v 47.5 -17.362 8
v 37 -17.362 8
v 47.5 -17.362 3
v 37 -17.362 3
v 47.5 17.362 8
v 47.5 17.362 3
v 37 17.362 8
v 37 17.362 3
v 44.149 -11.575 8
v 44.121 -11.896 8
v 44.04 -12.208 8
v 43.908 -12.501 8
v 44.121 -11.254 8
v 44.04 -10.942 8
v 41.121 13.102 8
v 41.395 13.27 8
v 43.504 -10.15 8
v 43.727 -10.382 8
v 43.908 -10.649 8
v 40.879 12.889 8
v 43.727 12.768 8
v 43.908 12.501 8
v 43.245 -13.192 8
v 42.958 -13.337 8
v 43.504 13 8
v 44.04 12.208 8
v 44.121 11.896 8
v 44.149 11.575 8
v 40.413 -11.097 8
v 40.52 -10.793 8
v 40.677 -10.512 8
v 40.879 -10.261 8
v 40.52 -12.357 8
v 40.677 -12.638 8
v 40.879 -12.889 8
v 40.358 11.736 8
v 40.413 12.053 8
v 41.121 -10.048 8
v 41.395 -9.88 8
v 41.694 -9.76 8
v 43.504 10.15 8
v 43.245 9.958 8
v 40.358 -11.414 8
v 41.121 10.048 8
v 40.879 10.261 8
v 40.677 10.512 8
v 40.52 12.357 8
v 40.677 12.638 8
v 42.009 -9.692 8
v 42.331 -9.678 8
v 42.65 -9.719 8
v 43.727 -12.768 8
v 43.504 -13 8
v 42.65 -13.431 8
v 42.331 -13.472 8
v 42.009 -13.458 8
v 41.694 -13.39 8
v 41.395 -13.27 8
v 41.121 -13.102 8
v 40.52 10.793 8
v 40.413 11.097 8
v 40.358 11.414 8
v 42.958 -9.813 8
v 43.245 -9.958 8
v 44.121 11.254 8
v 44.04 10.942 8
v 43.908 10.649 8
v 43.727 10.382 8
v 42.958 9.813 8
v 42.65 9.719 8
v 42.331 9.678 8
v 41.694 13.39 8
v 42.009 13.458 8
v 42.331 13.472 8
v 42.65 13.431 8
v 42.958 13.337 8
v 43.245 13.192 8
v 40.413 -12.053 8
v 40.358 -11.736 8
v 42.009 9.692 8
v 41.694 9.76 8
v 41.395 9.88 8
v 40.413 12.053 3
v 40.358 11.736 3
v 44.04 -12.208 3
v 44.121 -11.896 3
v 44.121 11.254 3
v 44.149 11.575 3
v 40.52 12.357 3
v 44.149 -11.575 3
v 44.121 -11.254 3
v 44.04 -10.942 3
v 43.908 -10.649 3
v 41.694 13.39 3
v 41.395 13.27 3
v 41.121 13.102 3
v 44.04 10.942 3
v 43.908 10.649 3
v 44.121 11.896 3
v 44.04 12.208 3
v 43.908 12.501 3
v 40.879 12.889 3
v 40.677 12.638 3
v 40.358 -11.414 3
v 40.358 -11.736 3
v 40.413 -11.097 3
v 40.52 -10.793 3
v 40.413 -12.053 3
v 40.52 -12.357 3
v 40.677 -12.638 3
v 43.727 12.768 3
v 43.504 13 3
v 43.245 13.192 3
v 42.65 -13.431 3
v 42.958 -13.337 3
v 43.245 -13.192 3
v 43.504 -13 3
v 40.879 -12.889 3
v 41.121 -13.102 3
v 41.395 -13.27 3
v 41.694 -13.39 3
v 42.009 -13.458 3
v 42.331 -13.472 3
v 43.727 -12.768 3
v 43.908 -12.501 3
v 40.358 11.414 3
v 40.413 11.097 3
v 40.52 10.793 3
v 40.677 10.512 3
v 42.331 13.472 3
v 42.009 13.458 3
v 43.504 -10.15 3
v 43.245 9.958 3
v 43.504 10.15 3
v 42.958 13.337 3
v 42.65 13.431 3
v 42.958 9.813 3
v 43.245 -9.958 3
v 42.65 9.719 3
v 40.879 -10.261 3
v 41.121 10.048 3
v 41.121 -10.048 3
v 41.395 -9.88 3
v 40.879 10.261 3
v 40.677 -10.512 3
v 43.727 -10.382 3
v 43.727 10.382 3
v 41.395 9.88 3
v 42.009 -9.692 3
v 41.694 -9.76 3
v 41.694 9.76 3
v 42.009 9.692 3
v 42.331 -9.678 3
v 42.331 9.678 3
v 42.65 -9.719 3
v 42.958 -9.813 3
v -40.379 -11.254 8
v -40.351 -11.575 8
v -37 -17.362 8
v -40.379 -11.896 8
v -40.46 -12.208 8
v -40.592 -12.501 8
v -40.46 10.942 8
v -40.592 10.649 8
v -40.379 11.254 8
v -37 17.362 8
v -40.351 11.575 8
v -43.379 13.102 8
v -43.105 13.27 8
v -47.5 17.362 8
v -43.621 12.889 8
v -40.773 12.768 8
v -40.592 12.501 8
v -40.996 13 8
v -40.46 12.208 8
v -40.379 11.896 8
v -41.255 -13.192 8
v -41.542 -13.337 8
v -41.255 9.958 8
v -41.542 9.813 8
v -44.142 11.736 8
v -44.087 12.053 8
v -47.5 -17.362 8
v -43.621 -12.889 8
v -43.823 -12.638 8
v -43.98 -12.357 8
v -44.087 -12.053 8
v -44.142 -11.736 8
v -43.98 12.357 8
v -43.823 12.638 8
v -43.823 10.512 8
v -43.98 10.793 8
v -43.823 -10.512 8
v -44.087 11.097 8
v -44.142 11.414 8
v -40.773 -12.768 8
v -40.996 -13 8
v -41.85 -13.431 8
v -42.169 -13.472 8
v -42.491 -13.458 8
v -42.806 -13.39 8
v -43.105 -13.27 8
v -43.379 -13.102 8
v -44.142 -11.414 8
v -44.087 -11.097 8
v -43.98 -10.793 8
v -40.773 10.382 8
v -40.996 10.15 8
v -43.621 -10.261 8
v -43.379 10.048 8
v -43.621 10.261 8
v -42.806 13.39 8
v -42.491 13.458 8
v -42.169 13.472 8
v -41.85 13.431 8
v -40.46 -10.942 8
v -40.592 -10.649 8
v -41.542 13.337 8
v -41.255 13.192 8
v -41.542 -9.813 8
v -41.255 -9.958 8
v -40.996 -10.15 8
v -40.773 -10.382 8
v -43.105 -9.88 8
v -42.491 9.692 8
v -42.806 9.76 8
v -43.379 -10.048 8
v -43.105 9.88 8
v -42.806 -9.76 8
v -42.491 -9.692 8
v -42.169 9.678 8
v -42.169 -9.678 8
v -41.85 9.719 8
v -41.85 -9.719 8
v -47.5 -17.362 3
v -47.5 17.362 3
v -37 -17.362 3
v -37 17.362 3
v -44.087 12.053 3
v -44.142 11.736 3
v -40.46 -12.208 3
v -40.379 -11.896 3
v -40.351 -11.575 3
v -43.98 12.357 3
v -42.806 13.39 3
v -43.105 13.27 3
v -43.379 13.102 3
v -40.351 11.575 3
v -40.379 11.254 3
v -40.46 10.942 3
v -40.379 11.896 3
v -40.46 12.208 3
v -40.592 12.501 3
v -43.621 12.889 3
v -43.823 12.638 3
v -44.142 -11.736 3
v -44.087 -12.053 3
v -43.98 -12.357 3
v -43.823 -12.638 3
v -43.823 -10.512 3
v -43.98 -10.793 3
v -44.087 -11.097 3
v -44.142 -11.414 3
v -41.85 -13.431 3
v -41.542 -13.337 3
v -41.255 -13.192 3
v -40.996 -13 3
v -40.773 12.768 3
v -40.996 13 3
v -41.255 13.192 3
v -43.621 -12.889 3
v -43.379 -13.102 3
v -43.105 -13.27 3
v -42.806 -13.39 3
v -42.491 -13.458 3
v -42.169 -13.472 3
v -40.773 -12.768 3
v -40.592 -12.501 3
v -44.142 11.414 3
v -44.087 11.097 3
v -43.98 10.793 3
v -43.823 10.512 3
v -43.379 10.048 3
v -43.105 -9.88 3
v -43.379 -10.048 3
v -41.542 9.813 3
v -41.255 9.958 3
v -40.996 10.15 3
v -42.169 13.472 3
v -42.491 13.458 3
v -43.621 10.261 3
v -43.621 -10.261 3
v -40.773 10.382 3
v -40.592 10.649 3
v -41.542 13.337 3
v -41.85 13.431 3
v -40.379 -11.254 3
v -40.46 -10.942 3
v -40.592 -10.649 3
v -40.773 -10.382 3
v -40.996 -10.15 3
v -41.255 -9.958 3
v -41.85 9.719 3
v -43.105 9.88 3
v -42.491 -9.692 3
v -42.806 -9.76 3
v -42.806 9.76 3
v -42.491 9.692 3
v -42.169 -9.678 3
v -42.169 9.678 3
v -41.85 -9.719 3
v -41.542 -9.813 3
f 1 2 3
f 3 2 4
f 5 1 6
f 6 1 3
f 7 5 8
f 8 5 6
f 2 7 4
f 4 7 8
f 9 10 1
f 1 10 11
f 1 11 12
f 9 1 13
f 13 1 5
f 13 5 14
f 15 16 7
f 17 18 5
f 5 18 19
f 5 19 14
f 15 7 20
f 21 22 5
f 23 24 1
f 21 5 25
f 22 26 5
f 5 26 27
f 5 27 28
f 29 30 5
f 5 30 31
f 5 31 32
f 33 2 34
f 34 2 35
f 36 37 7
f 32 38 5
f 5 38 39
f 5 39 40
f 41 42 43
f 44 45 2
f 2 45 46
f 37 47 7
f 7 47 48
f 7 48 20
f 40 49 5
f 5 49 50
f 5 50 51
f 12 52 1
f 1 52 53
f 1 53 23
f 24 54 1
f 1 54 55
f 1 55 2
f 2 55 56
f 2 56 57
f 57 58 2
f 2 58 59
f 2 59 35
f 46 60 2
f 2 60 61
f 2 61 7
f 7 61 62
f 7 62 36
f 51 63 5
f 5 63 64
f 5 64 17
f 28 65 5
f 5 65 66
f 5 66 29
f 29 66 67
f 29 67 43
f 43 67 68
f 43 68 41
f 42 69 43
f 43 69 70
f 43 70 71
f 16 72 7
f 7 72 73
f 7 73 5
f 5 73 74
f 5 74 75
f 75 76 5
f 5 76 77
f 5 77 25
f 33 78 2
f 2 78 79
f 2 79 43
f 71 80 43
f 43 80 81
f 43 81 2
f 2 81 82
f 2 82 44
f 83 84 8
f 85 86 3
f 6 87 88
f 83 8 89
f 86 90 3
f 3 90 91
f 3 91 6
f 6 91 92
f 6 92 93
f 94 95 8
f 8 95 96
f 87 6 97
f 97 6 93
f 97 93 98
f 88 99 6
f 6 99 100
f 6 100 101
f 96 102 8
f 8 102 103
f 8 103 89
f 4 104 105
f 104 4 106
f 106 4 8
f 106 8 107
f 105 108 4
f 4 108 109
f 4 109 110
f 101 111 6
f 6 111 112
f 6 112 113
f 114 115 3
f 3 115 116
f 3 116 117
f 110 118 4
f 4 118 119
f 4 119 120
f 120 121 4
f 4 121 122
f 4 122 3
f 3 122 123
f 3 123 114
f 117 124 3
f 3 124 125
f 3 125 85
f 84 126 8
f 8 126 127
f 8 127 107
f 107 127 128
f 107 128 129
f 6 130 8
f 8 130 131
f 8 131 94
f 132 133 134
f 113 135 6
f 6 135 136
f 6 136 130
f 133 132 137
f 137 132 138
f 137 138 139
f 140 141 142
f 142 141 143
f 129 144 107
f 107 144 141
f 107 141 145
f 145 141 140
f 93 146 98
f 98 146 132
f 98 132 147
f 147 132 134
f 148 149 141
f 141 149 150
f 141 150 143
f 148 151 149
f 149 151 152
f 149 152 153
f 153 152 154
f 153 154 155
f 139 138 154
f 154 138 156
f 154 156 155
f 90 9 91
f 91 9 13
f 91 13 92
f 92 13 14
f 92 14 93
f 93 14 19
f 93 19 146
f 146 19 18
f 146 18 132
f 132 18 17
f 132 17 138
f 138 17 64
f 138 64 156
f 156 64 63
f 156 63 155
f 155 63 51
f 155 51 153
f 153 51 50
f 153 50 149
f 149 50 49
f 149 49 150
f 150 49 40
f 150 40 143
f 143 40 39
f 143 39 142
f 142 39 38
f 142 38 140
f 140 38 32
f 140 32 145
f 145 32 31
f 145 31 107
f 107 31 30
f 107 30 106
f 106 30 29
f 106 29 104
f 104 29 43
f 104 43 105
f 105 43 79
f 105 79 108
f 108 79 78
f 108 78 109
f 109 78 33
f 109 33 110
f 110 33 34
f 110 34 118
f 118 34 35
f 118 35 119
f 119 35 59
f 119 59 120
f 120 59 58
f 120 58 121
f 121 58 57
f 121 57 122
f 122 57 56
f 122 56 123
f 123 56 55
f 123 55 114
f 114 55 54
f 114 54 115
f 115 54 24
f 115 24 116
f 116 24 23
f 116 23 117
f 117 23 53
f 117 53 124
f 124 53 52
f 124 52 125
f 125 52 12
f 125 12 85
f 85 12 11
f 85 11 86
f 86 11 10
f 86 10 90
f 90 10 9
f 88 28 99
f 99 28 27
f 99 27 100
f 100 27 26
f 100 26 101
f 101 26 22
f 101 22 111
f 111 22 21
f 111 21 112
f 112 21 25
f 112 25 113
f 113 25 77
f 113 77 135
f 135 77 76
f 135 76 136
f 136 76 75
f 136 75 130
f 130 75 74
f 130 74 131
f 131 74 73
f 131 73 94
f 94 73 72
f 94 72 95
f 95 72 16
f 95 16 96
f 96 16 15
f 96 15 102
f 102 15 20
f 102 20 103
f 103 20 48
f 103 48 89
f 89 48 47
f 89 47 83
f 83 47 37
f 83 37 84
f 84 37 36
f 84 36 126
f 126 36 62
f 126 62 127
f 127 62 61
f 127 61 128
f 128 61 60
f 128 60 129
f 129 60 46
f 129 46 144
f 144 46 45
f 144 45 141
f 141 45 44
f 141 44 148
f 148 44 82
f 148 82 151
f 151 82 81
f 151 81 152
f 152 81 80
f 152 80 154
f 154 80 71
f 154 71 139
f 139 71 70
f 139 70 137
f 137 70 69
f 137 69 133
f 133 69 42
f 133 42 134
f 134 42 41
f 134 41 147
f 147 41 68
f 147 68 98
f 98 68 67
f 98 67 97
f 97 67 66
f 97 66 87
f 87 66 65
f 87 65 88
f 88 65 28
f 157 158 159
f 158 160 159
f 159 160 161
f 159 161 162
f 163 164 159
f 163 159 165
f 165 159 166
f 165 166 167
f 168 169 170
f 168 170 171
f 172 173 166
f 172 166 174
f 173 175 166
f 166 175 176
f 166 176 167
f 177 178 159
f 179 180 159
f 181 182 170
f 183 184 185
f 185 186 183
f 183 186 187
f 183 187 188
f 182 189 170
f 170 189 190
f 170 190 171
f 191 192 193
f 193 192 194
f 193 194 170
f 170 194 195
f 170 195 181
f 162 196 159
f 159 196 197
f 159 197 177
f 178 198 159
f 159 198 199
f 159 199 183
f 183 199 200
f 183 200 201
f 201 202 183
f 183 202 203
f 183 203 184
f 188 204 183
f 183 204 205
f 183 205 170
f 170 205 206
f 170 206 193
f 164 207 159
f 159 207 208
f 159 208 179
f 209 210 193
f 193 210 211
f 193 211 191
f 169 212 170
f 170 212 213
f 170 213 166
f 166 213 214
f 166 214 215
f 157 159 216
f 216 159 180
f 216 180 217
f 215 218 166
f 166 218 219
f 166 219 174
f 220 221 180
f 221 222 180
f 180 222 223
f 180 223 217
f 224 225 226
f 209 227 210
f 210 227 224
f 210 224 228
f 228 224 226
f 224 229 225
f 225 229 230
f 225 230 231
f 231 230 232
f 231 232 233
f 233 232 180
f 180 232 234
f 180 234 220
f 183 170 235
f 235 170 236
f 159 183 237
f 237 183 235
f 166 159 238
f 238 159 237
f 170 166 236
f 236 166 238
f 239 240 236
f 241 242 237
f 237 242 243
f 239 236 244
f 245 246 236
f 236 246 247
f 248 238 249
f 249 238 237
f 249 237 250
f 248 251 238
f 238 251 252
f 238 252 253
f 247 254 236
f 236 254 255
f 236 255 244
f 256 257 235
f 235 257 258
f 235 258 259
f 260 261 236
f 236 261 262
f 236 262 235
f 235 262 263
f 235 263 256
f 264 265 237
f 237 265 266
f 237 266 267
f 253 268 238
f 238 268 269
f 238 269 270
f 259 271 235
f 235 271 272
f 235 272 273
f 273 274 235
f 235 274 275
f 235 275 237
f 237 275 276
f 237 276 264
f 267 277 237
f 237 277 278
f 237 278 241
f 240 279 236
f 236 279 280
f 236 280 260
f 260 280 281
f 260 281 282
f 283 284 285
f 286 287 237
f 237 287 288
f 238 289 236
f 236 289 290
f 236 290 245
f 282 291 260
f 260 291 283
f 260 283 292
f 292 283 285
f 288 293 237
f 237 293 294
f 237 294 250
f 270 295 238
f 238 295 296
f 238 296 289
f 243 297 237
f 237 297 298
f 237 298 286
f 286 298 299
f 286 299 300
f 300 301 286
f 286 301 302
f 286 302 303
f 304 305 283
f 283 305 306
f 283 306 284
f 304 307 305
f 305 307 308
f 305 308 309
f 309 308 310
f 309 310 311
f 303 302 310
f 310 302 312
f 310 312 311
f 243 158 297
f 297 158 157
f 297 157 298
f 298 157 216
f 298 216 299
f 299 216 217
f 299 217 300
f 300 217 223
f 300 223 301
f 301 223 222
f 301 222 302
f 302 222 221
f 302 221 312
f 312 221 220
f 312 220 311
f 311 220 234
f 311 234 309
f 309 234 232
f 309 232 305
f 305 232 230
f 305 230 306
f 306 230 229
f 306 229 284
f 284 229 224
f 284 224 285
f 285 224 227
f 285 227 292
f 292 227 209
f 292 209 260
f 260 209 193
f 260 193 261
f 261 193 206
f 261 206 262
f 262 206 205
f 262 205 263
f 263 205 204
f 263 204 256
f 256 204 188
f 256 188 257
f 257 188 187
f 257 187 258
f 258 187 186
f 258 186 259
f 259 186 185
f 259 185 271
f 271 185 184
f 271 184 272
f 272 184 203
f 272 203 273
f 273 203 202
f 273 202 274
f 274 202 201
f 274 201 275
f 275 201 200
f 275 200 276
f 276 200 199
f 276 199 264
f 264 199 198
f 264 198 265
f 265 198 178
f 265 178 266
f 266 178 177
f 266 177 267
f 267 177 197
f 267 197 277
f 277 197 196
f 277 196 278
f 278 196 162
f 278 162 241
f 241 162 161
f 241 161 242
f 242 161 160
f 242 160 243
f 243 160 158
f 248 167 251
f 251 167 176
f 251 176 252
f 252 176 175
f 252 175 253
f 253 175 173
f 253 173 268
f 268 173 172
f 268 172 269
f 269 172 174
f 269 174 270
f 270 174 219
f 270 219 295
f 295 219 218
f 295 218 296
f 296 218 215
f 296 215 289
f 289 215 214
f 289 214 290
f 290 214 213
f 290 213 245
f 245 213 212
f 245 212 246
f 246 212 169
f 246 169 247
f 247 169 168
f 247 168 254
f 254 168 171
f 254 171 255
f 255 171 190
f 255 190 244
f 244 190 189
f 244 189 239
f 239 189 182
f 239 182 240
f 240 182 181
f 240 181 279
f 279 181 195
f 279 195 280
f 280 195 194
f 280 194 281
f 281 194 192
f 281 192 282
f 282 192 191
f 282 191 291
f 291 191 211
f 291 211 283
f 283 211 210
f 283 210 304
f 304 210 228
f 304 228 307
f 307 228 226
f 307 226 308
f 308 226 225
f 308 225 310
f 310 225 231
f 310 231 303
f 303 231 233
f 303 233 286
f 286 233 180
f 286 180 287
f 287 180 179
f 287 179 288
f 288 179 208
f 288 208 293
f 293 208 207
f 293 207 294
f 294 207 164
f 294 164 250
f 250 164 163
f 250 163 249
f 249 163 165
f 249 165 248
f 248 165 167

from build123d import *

# Parameters (mm, degrees)
SKETCH1_W                      = 10.5
SKETCH1_H                      = 34.725
BOSS_EXTRUDE1_DEPTH            = 5
BOSS_EXTRUDE1_2_DEPTH          = 5
SKETCH7_W                      = 1.89865
SKETCH7_H                      = 5
F_6_CLEARANCE_HOLE2_AT_2_COUNT = 2
F_6_CLEARANCE_HOLE2_AT_2_PITCH = 23.15
F_6_CLEARANCE_HOLE2_AT_3_COUNT = 2
F_6_CLEARANCE_HOLE2_AT_3_PITCH = 84.5
F_6_CLEARANCE_HOLE2_AT_4_COUNT = 2
F_6_CLEARANCE_HOLE2_AT_4_PITCH = 87.613768895


with BuildPart() as part:
    # Sketch1 → Boss-Extrude1 (new body)
    with BuildSketch(Plane.XY.offset(3)):
        with Locations((42.25, 0)):
            Rectangle(SKETCH1_W, SKETCH1_H)
    extrude(amount=BOSS_EXTRUDE1_DEPTH)

    # Sketch7 → #6 Clearance Hole2 (revolve, cut)
    with BuildSketch(Plane(origin=(42.25, 11.575, 8), x_dir=(0, -1, 0), z_dir=(1, 0, 0))):
        with Locations((0.949325, 2.5)):
            Rectangle(SKETCH7_W, SKETCH7_H)
    f_6_clearance_hole2 = revolve(axis=Axis((42.25, 11.575, 14.35), (0, 0, -1)), mode=Mode.SUBTRACT)

    # #6 Clearance Hole2 at 2: #6 Clearance Hole2 ×2
    with Locations(*[(0, -i * F_6_CLEARANCE_HOLE2_AT_2_PITCH, 0) for i in range(1, F_6_CLEARANCE_HOLE2_AT_2_COUNT)]):
        add(f_6_clearance_hole2, mode=Mode.SUBTRACT)


with BuildPart() as body_2:
    # Sketch1 → Boss-Extrude1 2 (new body)
    with BuildSketch(Plane.XY.offset(3)):
        with Locations((-42.25, 0)):
            Rectangle(SKETCH1_W, SKETCH1_H)
    extrude(amount=BOSS_EXTRUDE1_2_DEPTH)

    # #6 Clearance Hole2 at 3: #6 Clearance Hole2 ×2
    with Locations(*[(-i * F_6_CLEARANCE_HOLE2_AT_3_PITCH, 0, 0) for i in range(1, F_6_CLEARANCE_HOLE2_AT_3_COUNT)]):
        add(f_6_clearance_hole2, mode=Mode.SUBTRACT)

    # #6 Clearance Hole2 at 4: #6 Clearance Hole2 ×2
    with Locations(*[Vector(-0.964460279, -0.264227875, 0) * (i * F_6_CLEARANCE_HOLE2_AT_4_PITCH) for i in range(1, F_6_CLEARANCE_HOLE2_AT_4_COUNT)]):
        add(f_6_clearance_hole2, mode=Mode.SUBTRACT)


solid = Compound([part.part, body_2.part])
